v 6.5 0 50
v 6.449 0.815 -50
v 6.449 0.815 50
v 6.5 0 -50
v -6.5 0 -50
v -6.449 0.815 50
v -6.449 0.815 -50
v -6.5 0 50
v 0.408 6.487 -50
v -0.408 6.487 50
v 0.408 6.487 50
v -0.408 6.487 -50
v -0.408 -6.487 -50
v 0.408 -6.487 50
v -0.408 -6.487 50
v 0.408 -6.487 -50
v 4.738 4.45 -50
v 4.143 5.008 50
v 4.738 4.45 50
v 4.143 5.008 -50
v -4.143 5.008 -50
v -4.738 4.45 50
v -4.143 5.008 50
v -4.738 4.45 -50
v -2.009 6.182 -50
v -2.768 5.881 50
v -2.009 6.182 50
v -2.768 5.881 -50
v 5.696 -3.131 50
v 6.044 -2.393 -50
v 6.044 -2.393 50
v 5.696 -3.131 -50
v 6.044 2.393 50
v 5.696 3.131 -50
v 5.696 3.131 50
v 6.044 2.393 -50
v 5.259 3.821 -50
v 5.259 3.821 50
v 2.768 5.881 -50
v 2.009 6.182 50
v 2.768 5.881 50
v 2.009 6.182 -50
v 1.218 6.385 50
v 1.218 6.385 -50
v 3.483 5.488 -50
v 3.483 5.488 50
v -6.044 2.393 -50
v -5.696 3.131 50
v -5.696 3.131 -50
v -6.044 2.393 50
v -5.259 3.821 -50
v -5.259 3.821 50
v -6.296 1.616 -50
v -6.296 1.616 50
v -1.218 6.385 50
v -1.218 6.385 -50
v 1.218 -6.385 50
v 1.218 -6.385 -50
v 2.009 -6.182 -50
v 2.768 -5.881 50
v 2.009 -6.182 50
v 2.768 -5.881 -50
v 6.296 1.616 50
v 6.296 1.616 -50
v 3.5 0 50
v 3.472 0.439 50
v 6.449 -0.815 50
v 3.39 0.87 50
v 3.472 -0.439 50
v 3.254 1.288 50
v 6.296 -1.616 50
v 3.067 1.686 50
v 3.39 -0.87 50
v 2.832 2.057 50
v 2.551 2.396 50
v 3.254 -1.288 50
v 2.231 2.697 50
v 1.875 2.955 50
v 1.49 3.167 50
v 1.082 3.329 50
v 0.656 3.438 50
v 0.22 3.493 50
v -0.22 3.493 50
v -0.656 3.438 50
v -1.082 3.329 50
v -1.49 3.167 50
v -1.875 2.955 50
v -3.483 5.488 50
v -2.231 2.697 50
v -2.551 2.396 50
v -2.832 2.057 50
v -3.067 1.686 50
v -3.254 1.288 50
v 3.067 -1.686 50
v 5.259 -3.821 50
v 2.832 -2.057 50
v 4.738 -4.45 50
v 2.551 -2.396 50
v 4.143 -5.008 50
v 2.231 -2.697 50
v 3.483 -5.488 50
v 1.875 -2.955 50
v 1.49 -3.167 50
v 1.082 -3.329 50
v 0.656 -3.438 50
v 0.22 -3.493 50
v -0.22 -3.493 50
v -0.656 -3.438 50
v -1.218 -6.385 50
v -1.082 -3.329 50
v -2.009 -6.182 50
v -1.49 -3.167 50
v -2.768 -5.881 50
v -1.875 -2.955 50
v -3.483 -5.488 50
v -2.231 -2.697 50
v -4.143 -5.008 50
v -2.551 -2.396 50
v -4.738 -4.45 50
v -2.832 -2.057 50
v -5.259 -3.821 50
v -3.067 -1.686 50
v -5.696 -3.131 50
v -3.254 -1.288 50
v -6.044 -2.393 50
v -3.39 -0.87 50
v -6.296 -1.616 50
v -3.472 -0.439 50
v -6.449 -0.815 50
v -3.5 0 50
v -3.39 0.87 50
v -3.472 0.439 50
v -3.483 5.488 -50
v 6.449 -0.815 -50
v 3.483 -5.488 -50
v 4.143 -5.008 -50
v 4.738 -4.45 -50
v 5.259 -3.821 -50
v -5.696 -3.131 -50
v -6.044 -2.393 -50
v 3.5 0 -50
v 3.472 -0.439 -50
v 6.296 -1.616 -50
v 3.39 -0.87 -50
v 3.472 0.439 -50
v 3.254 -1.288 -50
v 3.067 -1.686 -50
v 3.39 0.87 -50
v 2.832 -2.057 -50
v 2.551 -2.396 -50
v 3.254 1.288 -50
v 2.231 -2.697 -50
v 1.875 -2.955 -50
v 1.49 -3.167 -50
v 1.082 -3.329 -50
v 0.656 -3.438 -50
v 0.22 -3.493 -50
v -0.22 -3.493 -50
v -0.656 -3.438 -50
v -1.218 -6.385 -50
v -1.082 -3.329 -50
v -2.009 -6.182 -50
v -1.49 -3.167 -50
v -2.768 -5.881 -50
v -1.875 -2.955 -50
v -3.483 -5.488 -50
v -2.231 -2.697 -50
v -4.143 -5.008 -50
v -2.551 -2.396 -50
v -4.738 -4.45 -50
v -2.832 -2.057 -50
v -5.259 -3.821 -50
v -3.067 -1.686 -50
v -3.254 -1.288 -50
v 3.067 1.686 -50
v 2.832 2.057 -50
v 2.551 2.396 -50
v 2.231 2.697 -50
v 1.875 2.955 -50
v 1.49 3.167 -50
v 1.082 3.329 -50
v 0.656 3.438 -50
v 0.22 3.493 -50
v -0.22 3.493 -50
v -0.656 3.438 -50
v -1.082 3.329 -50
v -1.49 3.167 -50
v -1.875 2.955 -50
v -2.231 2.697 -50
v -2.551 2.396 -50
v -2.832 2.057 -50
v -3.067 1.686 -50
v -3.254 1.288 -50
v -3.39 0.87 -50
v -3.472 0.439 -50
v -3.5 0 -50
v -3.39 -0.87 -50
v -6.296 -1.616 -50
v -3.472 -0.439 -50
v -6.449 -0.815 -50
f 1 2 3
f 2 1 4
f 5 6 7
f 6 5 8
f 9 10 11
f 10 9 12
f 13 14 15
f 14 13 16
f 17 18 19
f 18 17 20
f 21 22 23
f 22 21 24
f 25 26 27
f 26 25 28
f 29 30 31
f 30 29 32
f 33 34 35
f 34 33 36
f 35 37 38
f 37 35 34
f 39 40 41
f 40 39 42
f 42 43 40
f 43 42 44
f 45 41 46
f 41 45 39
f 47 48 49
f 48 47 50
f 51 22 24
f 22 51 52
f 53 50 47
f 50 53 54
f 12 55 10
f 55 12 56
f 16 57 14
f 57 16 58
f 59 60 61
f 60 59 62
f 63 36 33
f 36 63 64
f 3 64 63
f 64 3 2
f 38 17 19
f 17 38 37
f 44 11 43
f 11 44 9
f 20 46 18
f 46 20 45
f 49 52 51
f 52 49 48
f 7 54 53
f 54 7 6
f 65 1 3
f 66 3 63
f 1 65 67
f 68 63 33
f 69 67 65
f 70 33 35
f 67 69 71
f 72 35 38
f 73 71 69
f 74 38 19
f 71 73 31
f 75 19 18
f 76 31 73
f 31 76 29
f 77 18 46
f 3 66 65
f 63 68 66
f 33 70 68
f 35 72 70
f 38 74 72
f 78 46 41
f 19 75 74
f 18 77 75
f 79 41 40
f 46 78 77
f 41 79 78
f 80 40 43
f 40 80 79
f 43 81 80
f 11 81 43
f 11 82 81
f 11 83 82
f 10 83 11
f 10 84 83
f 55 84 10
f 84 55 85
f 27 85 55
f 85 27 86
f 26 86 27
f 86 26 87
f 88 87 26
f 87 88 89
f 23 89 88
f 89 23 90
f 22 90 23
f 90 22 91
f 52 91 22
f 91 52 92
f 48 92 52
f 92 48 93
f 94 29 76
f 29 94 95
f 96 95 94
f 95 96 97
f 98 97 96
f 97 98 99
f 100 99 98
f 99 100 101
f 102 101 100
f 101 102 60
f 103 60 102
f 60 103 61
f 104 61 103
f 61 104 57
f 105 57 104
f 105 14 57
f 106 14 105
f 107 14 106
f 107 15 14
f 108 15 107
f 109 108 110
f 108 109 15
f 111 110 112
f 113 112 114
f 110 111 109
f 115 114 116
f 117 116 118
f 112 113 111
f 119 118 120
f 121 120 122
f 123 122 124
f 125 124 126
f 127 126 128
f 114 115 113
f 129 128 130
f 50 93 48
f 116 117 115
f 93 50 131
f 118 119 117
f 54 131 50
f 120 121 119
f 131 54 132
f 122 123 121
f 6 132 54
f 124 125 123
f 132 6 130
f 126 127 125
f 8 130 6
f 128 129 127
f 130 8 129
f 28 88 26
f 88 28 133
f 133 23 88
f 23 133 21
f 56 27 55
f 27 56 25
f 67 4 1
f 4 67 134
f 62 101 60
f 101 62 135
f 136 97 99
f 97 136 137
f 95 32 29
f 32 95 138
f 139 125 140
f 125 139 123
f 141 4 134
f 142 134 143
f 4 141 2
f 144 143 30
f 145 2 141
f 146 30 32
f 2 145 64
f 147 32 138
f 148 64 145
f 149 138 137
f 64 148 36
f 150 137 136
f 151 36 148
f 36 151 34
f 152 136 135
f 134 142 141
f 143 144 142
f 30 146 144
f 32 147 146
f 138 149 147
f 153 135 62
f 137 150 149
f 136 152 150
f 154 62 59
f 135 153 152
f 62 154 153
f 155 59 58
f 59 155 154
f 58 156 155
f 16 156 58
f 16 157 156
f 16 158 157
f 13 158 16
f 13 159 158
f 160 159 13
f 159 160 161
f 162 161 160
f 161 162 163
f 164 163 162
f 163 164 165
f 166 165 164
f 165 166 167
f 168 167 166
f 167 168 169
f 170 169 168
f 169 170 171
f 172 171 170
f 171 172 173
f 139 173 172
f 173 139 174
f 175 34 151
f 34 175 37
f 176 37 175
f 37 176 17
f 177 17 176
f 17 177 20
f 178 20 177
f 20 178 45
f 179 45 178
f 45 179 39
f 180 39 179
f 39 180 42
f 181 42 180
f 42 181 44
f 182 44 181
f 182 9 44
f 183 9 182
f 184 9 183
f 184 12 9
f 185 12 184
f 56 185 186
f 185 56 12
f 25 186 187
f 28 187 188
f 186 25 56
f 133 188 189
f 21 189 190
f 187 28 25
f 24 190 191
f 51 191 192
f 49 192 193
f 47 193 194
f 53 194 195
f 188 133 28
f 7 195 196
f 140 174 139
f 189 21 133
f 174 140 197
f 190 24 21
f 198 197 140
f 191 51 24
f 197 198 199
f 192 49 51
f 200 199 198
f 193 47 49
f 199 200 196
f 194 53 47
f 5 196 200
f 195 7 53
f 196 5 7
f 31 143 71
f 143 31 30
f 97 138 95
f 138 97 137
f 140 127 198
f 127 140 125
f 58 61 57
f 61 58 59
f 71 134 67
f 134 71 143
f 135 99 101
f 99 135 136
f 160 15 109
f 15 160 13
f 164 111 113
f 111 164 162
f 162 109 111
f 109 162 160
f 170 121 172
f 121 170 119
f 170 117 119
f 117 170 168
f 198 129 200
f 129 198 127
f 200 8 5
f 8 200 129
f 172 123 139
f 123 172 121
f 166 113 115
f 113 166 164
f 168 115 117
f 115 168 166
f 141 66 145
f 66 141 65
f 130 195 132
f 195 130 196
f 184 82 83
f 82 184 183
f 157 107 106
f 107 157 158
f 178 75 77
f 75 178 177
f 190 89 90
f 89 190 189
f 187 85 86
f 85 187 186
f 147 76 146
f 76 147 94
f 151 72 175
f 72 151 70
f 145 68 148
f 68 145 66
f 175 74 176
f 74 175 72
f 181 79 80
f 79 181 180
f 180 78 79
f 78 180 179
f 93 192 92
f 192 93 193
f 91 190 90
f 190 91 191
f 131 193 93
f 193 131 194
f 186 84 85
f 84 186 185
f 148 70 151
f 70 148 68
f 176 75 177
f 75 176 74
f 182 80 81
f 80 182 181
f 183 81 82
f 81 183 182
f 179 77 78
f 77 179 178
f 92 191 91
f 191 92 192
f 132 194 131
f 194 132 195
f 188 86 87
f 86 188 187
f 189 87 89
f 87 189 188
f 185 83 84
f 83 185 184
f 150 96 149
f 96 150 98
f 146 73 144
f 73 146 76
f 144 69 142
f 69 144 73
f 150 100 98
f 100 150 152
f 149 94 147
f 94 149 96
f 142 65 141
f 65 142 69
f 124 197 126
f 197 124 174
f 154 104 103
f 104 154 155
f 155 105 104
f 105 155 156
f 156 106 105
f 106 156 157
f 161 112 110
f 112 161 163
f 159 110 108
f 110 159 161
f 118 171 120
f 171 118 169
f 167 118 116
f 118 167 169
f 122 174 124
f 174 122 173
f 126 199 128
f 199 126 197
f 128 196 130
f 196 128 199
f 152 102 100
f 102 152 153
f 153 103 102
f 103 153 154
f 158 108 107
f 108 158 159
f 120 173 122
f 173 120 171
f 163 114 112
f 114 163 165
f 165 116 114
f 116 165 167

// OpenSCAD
$fn = 50;


difference() {
	union() {
		translate(v = [0, 0, -50.0000000000]) {
			cylinder(h = 100, r = 6.5000000000);
		}
	}
	union() {
		translate(v = [0, 0, -100.0000000000]) {
			cylinder(h = 200, r = 3.5000000000);
		}
	}
}
